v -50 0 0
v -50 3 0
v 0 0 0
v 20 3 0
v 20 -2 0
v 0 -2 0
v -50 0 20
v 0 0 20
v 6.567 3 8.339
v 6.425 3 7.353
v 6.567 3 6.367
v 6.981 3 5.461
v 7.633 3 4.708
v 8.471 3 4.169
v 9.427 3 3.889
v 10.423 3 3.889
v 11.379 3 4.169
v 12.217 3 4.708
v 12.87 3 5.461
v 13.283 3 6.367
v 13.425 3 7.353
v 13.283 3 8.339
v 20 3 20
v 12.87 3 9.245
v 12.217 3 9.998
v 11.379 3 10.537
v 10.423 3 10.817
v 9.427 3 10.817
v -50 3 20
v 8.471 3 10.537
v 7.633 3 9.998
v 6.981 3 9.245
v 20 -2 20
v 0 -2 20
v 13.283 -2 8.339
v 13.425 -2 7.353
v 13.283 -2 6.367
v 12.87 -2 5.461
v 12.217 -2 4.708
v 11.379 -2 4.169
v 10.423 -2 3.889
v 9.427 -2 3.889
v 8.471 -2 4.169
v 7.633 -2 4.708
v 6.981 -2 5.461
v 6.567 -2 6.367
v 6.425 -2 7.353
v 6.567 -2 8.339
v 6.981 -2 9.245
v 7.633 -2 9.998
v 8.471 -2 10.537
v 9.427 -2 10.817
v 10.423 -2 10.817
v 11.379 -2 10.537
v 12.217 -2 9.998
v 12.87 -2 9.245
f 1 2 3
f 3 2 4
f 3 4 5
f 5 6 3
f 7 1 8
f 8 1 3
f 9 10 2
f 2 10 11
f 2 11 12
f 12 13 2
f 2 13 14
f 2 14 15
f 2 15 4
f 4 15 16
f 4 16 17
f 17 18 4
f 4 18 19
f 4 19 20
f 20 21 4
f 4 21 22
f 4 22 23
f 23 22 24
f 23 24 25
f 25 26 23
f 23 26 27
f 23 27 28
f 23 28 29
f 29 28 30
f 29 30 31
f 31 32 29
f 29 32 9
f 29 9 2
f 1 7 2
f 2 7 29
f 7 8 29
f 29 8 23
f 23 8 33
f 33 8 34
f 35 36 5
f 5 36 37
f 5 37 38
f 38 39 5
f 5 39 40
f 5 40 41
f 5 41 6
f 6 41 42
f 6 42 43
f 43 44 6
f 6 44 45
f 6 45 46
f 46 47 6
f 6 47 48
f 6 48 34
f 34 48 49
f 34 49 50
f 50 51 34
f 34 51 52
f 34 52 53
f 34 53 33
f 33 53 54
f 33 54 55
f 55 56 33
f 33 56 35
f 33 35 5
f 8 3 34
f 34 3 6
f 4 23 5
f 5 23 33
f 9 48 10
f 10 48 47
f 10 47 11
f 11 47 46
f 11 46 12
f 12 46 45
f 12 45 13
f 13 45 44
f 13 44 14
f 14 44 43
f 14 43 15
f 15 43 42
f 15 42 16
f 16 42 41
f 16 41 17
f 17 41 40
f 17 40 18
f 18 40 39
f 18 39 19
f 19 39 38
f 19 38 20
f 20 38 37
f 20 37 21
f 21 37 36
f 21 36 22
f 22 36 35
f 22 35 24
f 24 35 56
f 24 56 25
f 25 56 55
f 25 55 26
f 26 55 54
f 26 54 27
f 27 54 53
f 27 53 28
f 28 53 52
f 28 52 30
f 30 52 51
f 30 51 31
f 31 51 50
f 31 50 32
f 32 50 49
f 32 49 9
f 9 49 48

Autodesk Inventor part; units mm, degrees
ref_plane "YZ Plane" through (0, 0, 0) normal (1, 0, 0) x (0, 1, 0)
ref_plane "XZ Plane" through (0, 0, 0) normal (0, 1, 0) x (-1, 0, 0)
ref_plane "XY Plane" through (0, 0, 0) normal (0, 0, 1) x (1, 0, 0)
sketch "Sketch1" plane through (0, 0, 0) normal (0, 1, 0) x (-1, 0, 0)
  line L0 (0, 0) -> (50, 0)
  line L1 (50, 0) -> (50, 20)
  line L2 (50, 20) -> (0, 20)
  line L3 (0, 20) -> (0, 0)
  dimension "d0" = 50
  dimension "d1" = 20
extrude "Extrusion1" add sketch "Sketch1" along normal blind 3
sketch "Sketch2" plane through (0, 3, 0) normal (0, 1, 0) x (1, 0, 0)
  line L0 (0, -20) -> (0, 0) projected
  line L1 (0, 0) -> (20, 0)
  line L2 (20, 0) -> (20, -20)
  line L3 (20, -20) -> (0, -20)
  line L4 (0, -20) -> (0, 0)
  dimension "d4" = 20
  dimension "d5" = 20
extrude "Extrusion2" add sketch "Sketch2" against normal blind 5
sketch "Sketch3" plane through (0, -2, 0) normal (0, -1, 0) x (1, 0, 0)
  point P0 (0, 0)
  point P1 (9.9251, 7.3531)
hole "Hole1" at (9.9251, -2, 7.3531) direction (0, 1, 0) diameter 7 end through all
properties part number "CameraTrainRig_holder_v2"
